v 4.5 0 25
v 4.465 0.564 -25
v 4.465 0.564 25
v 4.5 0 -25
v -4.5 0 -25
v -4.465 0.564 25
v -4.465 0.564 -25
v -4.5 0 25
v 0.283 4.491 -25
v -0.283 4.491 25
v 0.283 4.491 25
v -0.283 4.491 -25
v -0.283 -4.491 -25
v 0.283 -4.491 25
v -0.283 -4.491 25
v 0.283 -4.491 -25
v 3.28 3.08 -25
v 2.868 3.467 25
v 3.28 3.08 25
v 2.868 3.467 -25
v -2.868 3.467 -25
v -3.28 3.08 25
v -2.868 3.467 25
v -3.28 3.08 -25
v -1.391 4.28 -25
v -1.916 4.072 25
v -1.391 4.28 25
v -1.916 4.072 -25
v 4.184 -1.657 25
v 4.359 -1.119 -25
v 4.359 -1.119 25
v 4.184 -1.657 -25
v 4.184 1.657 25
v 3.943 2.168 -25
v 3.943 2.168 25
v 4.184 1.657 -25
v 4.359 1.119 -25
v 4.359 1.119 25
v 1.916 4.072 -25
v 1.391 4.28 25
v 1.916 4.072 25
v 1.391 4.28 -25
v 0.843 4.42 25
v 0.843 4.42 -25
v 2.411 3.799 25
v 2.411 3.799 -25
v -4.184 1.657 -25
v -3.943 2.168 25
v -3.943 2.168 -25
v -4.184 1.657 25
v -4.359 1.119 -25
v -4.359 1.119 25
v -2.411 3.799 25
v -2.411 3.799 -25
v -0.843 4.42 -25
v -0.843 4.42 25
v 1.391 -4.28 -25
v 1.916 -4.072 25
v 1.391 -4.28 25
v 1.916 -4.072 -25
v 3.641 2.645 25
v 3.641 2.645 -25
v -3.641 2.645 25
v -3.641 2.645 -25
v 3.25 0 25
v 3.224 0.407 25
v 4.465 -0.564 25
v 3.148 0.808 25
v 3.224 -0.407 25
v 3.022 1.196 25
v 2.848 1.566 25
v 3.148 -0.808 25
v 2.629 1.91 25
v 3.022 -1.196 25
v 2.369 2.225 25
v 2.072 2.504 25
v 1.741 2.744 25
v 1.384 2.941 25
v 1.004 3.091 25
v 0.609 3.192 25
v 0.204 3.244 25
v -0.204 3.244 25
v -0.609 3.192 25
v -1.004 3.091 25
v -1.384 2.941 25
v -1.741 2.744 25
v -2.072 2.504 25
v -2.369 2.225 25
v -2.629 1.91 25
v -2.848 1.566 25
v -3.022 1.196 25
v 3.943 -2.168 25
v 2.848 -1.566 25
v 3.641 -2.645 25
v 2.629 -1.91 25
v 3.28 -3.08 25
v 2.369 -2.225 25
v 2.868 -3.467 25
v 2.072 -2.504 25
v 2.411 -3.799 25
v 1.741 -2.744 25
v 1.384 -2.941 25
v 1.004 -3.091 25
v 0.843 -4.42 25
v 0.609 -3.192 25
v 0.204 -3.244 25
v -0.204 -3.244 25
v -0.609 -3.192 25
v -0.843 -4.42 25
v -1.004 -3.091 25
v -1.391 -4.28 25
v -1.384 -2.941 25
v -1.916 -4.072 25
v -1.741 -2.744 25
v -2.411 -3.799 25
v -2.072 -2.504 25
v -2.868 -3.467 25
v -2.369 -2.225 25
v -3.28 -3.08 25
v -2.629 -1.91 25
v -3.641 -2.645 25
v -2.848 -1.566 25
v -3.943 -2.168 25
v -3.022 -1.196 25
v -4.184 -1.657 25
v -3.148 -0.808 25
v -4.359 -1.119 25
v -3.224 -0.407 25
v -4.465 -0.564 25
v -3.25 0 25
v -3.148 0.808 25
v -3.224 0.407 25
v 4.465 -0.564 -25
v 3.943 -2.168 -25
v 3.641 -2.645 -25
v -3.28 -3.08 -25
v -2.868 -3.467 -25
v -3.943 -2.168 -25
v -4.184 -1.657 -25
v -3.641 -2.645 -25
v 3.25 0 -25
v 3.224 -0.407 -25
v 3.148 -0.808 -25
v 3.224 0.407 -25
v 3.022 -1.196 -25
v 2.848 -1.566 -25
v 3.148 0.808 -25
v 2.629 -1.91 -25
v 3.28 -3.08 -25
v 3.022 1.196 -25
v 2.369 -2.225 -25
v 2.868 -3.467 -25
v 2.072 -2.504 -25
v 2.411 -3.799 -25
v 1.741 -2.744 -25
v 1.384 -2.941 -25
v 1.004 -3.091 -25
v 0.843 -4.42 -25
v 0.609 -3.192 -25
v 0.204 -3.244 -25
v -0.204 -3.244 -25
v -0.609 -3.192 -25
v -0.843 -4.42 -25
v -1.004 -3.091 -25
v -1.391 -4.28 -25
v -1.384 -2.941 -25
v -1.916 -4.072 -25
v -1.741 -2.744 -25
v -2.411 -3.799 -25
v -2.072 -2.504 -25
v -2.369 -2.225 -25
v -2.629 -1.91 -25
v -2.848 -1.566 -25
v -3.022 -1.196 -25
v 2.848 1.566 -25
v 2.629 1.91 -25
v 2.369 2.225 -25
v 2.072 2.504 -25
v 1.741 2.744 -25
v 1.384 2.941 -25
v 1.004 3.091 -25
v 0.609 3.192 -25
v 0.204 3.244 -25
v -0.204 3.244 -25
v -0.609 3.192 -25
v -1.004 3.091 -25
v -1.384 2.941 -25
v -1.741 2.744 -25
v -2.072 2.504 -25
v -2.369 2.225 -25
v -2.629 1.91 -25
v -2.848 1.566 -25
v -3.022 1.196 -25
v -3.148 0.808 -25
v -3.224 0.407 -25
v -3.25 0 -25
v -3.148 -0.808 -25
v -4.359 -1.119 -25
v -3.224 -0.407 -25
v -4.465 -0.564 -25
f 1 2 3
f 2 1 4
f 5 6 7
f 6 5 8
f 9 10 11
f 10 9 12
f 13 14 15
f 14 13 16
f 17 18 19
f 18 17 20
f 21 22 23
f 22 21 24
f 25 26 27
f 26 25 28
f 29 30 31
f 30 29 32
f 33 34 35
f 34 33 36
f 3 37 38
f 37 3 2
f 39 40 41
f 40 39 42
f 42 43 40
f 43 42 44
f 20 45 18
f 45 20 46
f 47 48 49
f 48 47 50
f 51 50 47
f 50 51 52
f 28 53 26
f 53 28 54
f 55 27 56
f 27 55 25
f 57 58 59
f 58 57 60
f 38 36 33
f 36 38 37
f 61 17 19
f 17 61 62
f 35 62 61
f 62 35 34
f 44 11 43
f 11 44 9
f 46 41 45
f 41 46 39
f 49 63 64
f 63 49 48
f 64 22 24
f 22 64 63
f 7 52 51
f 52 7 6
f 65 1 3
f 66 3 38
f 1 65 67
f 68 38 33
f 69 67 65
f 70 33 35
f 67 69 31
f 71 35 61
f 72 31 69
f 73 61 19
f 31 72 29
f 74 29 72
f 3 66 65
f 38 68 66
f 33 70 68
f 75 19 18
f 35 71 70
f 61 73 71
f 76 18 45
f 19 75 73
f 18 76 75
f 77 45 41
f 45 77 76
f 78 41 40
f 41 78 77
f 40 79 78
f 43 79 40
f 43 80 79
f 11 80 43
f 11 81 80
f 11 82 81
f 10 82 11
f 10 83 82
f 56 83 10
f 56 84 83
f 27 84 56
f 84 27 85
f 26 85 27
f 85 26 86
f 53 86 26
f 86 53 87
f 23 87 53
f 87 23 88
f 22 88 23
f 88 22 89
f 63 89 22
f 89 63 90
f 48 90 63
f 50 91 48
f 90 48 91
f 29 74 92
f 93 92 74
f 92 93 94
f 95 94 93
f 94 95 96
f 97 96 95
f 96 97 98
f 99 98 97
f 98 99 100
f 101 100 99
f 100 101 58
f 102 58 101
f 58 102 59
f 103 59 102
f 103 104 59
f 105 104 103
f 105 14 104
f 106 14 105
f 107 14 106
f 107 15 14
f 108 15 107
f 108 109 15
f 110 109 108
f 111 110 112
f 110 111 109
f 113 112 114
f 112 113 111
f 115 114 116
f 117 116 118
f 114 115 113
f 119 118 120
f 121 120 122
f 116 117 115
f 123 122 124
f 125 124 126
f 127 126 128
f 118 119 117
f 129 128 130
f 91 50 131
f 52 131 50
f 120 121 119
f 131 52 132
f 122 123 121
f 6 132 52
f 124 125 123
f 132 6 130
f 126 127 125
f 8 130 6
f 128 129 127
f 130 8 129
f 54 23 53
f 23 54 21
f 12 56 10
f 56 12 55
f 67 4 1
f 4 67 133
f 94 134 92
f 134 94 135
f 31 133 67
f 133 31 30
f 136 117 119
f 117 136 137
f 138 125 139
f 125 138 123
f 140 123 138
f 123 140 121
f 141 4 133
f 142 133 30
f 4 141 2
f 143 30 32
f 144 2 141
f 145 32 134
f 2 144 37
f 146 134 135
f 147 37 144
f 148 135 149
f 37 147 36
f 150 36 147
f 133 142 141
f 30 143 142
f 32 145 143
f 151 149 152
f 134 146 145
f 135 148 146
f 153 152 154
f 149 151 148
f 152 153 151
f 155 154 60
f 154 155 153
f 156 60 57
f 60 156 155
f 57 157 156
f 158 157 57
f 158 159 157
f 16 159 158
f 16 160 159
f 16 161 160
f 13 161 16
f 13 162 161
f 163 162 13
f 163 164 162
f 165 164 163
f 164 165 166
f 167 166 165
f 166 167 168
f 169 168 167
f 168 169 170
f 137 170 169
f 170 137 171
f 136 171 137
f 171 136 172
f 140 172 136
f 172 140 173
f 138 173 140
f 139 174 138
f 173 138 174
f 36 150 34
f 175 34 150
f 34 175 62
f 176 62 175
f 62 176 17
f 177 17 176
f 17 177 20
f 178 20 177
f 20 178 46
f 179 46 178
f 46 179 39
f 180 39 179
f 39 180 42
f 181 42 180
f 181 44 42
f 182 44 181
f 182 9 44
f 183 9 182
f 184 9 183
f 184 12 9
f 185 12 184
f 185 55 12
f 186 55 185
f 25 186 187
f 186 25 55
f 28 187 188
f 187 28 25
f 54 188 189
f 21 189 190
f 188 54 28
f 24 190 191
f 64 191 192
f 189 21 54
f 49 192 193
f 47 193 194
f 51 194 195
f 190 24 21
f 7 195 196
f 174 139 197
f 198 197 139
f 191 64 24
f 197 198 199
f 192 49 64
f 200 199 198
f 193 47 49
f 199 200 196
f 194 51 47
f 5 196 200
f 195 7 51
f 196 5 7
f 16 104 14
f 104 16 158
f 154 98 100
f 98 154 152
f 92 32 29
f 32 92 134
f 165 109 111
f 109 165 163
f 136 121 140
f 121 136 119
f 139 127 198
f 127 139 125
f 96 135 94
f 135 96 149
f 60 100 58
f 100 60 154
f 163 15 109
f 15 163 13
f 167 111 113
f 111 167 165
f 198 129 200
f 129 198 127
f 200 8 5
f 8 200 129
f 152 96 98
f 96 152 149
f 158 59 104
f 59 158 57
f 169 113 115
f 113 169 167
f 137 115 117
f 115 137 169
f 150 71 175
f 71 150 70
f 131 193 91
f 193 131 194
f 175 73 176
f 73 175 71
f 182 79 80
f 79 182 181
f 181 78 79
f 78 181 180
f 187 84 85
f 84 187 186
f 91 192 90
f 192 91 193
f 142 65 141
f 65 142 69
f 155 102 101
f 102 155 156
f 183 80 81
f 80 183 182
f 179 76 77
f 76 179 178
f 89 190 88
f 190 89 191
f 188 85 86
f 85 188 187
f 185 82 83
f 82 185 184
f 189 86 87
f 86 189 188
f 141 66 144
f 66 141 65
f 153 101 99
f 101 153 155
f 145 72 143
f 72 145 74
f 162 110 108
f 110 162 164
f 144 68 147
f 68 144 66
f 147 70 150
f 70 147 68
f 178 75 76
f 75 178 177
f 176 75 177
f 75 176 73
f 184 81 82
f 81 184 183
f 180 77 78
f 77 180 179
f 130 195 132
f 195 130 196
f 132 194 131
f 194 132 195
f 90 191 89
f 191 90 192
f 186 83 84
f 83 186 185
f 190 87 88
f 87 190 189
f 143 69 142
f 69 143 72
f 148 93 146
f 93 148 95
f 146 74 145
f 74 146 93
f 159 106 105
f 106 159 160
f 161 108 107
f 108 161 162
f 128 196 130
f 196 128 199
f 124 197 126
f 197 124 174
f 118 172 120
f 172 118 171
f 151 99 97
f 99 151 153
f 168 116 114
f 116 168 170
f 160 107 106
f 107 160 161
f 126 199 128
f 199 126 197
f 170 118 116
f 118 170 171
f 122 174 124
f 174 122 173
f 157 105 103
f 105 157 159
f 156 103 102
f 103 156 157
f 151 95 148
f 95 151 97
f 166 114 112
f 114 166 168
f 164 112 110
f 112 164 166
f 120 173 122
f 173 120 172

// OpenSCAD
$fn = 50;


difference() {
	union() {
		translate(v = [0, 0, -25.0000000000]) {
			cylinder(h = 50, r = 4.5000000000);
		}
	}
	union() {
		translate(v = [0, 0, -100.0000000000]) {
			cylinder(h = 200, r = 3.2500000000);
		}
	}
}
